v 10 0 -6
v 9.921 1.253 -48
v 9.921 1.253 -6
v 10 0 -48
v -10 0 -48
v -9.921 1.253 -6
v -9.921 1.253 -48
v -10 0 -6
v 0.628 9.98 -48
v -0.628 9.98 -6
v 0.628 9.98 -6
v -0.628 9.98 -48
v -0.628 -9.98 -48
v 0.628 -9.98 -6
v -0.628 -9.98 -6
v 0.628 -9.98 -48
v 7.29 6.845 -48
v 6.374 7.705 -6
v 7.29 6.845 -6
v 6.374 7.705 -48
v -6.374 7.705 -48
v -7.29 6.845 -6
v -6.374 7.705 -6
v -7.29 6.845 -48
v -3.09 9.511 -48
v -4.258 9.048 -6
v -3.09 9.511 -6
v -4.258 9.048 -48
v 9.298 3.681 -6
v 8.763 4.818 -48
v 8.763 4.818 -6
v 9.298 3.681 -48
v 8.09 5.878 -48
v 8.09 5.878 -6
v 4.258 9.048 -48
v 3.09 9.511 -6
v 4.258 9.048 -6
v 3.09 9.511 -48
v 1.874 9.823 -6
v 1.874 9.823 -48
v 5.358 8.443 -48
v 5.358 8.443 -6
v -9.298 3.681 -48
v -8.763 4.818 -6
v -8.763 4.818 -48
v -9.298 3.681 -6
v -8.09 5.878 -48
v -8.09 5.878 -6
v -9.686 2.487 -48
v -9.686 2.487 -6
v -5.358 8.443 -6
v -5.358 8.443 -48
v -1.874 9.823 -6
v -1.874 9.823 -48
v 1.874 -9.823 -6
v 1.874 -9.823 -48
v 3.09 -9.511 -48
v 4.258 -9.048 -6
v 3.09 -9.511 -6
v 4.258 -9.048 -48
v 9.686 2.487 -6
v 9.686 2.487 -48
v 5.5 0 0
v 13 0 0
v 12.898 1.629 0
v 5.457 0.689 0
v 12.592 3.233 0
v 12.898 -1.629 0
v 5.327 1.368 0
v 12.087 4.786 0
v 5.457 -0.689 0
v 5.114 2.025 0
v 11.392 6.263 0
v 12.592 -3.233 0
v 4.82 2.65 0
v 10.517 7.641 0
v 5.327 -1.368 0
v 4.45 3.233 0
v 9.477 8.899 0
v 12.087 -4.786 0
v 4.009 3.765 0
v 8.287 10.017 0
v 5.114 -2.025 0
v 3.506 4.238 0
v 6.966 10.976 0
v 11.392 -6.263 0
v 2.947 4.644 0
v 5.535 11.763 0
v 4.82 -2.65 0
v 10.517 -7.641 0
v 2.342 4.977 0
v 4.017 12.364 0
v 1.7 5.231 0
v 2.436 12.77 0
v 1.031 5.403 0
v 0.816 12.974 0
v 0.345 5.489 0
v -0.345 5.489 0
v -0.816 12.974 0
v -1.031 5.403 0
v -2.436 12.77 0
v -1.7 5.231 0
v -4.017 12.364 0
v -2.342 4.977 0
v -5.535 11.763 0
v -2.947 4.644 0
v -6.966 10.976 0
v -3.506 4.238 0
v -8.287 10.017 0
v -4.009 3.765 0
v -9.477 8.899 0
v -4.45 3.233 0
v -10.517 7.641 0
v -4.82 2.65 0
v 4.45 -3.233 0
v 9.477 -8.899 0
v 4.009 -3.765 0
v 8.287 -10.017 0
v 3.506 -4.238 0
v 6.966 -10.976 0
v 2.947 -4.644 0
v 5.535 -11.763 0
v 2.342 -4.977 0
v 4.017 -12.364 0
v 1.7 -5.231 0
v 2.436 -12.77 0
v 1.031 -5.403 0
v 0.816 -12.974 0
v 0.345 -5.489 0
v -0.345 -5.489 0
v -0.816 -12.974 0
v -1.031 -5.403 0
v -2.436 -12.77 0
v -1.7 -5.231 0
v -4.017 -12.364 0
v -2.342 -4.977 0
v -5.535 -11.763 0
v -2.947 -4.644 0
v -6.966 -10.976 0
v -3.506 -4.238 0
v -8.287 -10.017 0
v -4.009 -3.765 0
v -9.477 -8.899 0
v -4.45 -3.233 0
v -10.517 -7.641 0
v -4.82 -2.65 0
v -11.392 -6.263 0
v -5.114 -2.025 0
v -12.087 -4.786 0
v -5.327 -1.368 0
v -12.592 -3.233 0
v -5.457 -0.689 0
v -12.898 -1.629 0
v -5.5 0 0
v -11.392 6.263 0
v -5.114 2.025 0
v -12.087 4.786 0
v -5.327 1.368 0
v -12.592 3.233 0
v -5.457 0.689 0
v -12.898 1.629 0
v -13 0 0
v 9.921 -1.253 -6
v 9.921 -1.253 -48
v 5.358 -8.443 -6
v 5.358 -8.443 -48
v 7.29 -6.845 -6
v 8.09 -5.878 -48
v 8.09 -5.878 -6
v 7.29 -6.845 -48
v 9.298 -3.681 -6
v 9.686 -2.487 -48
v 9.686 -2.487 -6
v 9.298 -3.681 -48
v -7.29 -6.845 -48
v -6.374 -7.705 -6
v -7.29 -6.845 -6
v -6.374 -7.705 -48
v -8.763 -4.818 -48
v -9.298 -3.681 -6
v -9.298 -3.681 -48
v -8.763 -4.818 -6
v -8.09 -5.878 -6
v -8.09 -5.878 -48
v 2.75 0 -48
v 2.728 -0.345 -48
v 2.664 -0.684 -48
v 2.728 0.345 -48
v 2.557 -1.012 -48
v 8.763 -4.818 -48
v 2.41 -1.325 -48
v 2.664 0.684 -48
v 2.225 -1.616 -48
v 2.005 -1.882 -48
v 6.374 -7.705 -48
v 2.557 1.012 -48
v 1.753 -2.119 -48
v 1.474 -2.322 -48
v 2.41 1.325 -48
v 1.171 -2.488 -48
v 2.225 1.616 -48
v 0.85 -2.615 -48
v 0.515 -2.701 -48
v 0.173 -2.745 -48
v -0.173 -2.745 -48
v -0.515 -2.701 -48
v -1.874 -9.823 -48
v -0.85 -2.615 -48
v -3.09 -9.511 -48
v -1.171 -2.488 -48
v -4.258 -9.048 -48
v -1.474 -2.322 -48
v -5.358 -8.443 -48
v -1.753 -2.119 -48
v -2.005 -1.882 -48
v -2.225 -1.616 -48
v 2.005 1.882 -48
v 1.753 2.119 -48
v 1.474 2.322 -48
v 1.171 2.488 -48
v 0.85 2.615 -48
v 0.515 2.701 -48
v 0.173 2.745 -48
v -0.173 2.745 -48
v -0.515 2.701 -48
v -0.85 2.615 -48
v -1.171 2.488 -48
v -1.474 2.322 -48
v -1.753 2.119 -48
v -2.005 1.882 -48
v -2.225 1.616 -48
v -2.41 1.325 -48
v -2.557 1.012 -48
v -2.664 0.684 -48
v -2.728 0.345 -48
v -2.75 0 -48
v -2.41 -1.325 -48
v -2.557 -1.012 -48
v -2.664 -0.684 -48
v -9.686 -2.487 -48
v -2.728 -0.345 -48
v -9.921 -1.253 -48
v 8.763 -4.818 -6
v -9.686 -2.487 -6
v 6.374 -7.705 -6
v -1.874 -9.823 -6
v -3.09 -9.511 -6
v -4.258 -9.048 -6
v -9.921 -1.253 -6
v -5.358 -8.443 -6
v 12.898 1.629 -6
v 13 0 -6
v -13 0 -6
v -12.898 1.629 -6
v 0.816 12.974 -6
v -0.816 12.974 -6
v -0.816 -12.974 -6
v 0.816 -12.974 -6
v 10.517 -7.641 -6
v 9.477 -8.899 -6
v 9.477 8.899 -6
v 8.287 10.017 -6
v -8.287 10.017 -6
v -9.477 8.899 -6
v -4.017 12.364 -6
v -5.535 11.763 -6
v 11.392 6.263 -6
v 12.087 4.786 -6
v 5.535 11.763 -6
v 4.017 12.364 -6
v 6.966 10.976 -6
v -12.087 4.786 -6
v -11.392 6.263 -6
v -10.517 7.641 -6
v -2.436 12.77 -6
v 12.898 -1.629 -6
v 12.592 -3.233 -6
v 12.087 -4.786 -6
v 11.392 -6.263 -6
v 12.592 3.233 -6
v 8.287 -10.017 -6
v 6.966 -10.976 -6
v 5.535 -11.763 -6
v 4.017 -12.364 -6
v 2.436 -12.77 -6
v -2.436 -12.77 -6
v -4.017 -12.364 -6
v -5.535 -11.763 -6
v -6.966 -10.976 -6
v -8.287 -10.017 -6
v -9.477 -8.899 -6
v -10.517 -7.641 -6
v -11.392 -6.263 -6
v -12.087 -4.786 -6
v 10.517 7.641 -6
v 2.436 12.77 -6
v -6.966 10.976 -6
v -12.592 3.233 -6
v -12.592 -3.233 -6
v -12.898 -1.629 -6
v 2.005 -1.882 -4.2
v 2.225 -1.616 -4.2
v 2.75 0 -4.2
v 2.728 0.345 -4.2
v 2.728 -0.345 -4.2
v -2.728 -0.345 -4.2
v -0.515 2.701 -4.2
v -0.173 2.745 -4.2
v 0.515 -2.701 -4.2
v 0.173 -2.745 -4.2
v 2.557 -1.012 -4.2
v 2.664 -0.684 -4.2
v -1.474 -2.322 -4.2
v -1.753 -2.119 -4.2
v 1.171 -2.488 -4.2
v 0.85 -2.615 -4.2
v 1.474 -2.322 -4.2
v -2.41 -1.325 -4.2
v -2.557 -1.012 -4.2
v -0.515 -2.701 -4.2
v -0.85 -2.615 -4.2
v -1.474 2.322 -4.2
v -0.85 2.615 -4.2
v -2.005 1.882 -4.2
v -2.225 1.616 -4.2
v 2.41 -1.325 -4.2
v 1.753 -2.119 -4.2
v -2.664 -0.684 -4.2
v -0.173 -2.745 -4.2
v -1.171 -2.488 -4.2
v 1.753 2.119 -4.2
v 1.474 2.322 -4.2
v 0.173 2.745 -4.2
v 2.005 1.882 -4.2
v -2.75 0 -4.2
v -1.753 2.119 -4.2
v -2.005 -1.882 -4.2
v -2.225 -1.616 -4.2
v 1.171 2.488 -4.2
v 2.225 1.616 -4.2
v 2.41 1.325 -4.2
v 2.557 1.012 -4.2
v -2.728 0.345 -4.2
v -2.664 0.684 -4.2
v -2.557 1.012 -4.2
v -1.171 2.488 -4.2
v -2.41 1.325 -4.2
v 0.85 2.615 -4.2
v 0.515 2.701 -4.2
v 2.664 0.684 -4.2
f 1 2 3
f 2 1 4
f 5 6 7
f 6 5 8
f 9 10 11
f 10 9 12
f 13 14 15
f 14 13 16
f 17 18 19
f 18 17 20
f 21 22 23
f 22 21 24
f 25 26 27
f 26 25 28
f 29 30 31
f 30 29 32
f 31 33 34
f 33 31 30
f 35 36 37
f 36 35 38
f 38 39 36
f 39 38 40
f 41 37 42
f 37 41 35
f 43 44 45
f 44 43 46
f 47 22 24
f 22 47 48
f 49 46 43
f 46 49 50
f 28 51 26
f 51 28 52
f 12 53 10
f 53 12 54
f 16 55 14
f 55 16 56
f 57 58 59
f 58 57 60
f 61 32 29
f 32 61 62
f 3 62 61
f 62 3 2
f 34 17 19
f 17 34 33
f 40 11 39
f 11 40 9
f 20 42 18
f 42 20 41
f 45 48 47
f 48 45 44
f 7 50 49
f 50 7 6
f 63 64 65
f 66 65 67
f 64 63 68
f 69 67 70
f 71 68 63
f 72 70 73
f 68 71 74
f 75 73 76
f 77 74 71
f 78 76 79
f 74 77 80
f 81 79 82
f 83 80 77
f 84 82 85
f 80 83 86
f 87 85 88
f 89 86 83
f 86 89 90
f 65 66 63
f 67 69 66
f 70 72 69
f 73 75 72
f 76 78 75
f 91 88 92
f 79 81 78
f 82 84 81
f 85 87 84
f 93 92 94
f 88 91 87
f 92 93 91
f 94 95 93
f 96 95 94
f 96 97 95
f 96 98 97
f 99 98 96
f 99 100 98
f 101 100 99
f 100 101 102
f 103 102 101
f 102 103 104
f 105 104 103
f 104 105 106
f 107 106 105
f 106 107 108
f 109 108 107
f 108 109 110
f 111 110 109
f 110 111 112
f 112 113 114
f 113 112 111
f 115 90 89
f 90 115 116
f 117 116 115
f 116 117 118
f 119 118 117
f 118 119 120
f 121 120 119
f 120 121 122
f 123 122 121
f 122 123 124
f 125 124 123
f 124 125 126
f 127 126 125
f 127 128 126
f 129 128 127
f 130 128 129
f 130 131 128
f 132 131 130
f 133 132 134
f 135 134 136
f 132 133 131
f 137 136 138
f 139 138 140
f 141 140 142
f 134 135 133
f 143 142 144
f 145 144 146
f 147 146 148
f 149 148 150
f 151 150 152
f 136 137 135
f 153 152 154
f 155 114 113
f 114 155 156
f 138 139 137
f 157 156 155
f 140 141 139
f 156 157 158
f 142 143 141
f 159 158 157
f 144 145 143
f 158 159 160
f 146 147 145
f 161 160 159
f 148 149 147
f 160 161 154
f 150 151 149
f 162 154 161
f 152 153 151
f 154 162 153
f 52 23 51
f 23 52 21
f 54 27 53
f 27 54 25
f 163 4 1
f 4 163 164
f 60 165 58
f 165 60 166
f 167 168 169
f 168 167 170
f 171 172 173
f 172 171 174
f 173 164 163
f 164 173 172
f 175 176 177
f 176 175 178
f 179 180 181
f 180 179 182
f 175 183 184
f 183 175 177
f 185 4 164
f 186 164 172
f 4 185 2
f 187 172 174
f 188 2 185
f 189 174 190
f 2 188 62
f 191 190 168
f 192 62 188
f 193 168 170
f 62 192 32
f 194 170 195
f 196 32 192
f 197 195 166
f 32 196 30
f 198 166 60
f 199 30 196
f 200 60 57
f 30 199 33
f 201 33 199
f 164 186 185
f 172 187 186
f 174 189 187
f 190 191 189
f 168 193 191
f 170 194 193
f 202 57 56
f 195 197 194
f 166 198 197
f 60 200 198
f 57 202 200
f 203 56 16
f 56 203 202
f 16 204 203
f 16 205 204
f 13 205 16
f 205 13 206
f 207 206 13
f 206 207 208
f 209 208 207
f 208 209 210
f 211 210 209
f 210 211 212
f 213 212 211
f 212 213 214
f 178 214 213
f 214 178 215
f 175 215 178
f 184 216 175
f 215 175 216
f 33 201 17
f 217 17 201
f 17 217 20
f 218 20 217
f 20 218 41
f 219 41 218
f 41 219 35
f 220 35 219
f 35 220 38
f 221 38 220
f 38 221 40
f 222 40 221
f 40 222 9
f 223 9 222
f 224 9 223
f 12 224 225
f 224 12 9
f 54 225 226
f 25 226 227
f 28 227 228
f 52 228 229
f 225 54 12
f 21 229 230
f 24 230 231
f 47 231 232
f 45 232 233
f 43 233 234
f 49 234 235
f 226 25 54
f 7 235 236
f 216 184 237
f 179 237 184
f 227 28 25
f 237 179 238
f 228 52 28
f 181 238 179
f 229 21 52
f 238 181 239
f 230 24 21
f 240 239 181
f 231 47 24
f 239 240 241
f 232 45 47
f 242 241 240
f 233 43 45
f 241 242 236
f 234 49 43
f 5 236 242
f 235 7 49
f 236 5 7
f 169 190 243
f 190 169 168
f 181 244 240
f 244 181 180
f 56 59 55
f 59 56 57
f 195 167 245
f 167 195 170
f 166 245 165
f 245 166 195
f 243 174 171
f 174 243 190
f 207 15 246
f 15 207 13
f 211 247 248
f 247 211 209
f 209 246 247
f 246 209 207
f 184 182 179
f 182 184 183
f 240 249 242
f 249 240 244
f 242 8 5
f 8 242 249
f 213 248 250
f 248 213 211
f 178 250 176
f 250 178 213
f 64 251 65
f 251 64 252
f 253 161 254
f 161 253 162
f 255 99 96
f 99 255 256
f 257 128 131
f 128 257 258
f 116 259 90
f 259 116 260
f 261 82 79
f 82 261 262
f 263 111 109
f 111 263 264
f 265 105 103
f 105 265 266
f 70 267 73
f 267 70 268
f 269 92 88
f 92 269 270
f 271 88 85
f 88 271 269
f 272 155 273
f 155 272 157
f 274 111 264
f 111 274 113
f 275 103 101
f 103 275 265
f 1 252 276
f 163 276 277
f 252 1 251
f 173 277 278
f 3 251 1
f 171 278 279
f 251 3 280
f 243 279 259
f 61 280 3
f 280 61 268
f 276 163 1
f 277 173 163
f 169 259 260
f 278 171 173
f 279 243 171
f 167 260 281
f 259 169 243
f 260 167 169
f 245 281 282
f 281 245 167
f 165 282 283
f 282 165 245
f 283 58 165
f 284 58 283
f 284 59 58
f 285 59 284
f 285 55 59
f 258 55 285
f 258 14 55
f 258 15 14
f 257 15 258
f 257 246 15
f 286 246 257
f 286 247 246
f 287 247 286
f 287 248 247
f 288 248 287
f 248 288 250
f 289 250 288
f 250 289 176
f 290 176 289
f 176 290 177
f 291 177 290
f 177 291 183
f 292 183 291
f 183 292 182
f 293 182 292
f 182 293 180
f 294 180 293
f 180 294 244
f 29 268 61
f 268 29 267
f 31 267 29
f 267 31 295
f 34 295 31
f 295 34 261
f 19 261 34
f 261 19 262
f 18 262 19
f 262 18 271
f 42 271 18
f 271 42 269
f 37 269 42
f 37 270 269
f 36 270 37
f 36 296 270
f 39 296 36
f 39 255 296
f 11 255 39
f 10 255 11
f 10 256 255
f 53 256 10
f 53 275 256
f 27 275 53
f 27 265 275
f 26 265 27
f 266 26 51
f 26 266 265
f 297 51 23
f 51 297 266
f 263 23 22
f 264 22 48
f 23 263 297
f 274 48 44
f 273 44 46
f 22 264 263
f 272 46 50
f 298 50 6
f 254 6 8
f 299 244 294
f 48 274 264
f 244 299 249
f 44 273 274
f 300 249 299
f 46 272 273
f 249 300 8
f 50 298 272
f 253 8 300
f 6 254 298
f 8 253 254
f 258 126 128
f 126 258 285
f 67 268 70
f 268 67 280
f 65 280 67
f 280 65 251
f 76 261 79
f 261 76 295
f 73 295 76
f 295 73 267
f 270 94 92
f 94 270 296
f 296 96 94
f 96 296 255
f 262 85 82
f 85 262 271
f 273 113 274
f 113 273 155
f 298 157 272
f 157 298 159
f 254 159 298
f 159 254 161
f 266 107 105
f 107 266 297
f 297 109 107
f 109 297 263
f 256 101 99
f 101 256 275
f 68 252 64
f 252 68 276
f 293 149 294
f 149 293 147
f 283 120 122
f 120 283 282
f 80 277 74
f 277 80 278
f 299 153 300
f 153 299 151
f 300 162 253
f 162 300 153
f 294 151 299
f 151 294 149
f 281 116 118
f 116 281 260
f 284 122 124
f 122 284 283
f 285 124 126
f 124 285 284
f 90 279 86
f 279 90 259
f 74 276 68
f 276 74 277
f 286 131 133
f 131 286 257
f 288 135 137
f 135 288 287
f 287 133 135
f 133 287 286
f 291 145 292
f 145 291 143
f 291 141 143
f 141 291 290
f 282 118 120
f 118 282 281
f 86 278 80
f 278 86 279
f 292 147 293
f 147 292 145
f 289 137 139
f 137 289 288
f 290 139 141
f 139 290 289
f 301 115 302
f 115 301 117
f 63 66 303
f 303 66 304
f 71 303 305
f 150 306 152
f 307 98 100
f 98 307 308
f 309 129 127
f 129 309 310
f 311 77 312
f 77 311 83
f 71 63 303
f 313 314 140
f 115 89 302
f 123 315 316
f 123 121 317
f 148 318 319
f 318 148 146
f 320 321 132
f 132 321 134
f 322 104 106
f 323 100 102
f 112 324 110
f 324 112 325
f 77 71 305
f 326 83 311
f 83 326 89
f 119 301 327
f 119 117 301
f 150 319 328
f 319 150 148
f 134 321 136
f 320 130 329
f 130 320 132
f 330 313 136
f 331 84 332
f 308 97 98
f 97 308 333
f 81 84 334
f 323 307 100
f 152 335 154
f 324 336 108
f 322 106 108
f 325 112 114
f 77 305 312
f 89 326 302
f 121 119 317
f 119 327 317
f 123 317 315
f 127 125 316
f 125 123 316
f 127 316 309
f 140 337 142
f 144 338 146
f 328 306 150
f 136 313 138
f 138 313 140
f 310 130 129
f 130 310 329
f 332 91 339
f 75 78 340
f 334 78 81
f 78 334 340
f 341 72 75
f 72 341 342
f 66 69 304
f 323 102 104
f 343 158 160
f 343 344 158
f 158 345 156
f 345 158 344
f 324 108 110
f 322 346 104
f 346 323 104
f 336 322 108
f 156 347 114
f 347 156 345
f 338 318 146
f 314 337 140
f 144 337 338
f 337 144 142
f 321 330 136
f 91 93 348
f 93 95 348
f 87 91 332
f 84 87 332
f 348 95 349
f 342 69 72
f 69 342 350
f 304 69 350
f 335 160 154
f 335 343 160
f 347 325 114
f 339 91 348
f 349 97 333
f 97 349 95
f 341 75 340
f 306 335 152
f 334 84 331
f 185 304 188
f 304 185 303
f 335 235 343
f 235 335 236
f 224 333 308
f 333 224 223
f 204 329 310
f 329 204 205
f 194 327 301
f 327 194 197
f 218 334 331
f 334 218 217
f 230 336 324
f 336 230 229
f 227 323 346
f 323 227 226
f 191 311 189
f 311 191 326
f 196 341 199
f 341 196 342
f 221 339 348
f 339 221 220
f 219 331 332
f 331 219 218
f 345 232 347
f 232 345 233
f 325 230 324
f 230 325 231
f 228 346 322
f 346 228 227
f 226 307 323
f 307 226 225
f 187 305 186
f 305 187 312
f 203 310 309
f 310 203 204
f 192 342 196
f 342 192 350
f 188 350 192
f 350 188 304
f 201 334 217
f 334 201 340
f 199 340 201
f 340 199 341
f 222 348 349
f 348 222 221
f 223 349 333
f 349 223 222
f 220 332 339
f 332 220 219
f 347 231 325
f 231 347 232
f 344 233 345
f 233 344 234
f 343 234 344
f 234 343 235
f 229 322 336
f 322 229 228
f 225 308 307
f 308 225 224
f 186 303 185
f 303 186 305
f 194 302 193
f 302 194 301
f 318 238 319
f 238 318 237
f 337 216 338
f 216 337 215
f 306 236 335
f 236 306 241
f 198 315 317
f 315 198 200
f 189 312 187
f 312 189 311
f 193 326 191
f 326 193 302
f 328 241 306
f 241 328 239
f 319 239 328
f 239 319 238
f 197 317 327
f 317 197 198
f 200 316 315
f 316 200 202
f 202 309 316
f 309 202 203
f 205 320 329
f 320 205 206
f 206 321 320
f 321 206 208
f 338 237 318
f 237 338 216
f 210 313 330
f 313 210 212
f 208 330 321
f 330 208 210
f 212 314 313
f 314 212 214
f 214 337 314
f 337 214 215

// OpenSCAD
$fn = 50;


difference() {
	union() {
		translate(v = [0, 0, -48.0000000000]) {
			cylinder(h = 48, r = 10.0000000000);
		}
		translate(v = [0, 0, -6.0000000000]) {
			cylinder(h = 6, r = 13.0000000000);
		}
	}
	union() {
		translate(v = [0, 0, 0]) {
			rotate(a = [0, 0, 0]) {
				difference() {
					union() {
						#translate(v = [0, 0, -48.0000000000]) {
							cylinder(h = 48, r = 2.2500000000);
						}
						#translate(v = [0, 0, -4.2000000000]) {
							cylinder(h = 4.2000000000, r1 = 2.7500000000, r2 = 5.5000000000);
						}
						#translate(v = [0, 0, -48.0000000000]) {
							cylinder(h = 48, r = 2.7500000000);
						}
						#translate(v = [0, 0, -48.0000000000]) {
							cylinder(h = 48, r = 2.2500000000);
						}
					}
					union();
				}
			}
		}
	}
}
